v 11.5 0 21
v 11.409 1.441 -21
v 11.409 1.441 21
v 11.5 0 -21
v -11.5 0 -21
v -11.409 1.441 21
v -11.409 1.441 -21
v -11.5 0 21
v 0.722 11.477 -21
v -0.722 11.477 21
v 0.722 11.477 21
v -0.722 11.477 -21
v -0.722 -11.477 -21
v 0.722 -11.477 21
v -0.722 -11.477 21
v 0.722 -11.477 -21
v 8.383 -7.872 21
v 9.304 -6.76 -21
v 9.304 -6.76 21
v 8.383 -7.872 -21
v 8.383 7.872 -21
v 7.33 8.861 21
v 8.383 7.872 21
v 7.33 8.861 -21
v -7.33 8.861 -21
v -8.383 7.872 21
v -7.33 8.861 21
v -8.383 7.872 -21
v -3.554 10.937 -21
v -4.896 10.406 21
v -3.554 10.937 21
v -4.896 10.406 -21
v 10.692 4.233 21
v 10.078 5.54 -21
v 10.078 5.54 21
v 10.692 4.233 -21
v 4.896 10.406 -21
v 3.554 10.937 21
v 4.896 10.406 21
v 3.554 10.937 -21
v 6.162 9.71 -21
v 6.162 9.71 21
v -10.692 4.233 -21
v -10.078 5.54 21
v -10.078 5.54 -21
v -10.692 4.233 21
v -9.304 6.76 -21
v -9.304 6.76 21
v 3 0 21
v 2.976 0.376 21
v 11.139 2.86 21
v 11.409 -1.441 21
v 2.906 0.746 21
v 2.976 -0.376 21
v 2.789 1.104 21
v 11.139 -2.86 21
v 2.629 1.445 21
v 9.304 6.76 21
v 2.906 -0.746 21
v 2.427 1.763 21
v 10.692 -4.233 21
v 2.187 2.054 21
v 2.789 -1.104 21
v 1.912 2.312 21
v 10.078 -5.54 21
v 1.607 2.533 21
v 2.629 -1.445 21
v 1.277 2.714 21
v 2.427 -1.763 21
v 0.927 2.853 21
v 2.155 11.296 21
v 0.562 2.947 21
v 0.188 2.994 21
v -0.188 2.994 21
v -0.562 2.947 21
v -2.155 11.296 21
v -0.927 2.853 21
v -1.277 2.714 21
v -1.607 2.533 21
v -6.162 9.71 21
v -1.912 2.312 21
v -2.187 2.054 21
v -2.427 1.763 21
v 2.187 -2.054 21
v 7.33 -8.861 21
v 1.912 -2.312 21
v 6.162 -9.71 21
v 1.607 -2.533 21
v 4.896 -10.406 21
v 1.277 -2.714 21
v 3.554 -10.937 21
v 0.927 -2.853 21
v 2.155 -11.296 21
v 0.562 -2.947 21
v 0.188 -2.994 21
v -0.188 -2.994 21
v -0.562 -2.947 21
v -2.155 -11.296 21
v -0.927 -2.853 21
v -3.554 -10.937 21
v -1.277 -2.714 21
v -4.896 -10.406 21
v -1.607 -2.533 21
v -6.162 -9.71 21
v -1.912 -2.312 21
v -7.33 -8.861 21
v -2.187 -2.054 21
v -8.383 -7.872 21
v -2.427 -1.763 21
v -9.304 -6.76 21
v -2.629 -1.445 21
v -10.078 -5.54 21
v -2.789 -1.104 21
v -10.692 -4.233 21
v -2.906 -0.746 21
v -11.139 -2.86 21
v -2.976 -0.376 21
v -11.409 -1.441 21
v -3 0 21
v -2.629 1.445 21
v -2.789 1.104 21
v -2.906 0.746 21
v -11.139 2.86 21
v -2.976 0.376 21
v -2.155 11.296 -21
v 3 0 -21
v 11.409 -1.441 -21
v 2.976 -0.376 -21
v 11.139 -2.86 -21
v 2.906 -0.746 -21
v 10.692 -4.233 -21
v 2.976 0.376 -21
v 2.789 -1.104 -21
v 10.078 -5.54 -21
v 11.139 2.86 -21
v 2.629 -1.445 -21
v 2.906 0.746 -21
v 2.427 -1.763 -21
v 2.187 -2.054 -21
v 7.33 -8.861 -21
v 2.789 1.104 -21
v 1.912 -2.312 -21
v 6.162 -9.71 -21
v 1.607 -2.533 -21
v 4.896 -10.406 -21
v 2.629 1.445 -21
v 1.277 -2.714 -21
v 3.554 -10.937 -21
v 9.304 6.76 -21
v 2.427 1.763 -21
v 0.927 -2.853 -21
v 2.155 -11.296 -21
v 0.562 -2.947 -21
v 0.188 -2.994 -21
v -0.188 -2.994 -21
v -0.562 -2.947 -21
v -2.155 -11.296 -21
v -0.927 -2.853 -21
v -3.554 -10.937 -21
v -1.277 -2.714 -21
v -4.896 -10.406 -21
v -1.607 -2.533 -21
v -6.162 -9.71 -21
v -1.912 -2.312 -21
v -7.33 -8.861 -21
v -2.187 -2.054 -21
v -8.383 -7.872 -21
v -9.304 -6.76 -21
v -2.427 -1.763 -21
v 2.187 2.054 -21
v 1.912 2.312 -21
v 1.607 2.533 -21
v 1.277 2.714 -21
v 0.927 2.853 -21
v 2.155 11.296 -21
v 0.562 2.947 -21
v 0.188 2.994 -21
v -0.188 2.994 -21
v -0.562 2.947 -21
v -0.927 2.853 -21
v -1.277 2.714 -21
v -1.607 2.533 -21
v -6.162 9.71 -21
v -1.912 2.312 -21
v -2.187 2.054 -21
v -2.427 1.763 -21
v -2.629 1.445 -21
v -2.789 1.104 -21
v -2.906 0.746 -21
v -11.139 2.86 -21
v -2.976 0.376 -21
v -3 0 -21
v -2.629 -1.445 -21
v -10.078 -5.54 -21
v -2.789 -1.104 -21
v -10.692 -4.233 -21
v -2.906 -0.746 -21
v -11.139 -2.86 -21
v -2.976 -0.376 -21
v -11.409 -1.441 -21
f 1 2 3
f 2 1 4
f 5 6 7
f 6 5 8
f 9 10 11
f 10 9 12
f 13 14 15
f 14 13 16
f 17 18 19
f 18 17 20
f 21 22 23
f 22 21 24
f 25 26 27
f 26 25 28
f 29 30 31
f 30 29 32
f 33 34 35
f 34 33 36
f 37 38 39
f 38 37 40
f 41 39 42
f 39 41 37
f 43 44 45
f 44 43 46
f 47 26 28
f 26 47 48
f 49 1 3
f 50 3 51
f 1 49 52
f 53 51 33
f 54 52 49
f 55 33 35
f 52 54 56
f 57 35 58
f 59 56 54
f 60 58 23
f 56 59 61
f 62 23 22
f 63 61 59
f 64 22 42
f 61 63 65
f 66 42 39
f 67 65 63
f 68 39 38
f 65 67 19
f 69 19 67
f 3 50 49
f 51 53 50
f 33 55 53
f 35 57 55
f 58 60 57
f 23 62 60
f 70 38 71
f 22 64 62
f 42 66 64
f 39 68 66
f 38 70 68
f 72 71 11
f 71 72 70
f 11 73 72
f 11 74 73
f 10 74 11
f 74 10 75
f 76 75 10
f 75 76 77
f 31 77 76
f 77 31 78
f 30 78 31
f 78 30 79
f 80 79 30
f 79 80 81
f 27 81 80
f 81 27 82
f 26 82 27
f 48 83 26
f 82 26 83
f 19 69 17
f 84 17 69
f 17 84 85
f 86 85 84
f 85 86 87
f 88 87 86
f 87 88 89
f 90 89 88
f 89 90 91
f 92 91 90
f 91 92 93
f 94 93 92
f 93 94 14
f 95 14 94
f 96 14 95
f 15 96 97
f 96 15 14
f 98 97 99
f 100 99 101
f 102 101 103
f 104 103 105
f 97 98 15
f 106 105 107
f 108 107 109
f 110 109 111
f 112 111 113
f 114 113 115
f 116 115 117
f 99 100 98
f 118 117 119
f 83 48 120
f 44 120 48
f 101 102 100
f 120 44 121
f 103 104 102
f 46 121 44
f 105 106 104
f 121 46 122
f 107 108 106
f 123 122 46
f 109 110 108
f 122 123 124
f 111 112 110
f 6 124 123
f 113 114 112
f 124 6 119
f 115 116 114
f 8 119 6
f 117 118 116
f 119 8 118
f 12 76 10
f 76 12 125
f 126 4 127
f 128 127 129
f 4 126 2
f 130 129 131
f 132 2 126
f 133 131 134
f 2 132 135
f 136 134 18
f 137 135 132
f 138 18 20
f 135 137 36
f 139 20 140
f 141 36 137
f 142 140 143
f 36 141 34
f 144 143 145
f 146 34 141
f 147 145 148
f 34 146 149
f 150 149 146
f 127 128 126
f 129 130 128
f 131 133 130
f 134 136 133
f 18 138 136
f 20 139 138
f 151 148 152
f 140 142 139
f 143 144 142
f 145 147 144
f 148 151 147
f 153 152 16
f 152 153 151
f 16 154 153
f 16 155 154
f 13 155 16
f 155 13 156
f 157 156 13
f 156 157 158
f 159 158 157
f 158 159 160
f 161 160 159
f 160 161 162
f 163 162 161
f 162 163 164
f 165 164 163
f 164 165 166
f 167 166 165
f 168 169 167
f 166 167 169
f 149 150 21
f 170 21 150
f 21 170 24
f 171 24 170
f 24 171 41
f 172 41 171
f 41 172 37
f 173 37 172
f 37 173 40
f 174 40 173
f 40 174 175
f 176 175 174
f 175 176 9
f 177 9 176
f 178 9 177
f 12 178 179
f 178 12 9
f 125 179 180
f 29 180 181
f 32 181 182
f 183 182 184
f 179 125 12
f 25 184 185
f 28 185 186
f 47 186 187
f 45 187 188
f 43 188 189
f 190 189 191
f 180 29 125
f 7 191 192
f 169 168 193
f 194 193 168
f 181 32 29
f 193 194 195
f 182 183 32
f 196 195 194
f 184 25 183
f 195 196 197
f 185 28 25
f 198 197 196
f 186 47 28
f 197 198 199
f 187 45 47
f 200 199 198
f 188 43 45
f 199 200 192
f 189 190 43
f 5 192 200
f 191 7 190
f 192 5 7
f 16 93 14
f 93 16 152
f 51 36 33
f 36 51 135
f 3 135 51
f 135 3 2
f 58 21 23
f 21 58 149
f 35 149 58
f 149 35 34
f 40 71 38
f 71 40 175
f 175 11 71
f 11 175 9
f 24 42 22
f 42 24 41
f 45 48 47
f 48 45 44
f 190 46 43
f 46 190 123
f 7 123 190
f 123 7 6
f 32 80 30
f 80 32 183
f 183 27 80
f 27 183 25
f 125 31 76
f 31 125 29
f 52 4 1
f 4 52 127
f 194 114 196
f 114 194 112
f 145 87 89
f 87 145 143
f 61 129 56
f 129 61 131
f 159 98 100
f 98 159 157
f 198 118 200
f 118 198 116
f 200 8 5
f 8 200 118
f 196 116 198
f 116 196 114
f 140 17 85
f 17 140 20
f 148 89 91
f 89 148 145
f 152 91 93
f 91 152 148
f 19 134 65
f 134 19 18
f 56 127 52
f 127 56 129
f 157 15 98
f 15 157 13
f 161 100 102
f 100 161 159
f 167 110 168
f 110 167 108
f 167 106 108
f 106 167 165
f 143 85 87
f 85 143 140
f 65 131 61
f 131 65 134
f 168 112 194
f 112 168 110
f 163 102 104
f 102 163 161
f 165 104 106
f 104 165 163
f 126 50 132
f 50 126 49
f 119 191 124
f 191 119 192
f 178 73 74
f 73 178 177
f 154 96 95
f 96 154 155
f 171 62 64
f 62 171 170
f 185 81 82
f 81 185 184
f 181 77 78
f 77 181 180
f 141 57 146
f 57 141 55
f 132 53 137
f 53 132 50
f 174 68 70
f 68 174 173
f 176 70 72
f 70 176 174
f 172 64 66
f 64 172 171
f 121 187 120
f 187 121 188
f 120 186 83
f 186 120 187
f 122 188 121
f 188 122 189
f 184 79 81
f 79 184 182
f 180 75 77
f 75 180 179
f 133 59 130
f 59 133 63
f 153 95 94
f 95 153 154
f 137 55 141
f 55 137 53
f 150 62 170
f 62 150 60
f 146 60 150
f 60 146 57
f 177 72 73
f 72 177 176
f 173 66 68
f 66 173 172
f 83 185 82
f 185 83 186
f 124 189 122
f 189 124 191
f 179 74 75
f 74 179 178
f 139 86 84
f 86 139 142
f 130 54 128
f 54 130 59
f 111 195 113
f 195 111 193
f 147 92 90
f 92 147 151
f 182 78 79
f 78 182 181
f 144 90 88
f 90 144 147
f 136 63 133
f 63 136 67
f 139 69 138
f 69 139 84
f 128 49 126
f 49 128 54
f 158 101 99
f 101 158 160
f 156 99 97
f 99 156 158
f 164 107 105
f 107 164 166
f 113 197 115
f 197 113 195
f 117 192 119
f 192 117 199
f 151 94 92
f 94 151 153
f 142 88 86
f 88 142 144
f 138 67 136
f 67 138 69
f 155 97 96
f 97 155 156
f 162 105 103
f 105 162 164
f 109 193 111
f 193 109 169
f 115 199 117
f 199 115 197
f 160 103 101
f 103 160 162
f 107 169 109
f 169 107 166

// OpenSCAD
$fn = 50;


difference() {
	union() {
		translate(v = [0, 0, -21.0000000000]) {
			cylinder(h = 42, r = 11.5000000000);
		}
	}
	union() {
		translate(v = [0, 0, -100.0000000000]) {
			cylinder(h = 200, r = 3);
		}
	}
}
